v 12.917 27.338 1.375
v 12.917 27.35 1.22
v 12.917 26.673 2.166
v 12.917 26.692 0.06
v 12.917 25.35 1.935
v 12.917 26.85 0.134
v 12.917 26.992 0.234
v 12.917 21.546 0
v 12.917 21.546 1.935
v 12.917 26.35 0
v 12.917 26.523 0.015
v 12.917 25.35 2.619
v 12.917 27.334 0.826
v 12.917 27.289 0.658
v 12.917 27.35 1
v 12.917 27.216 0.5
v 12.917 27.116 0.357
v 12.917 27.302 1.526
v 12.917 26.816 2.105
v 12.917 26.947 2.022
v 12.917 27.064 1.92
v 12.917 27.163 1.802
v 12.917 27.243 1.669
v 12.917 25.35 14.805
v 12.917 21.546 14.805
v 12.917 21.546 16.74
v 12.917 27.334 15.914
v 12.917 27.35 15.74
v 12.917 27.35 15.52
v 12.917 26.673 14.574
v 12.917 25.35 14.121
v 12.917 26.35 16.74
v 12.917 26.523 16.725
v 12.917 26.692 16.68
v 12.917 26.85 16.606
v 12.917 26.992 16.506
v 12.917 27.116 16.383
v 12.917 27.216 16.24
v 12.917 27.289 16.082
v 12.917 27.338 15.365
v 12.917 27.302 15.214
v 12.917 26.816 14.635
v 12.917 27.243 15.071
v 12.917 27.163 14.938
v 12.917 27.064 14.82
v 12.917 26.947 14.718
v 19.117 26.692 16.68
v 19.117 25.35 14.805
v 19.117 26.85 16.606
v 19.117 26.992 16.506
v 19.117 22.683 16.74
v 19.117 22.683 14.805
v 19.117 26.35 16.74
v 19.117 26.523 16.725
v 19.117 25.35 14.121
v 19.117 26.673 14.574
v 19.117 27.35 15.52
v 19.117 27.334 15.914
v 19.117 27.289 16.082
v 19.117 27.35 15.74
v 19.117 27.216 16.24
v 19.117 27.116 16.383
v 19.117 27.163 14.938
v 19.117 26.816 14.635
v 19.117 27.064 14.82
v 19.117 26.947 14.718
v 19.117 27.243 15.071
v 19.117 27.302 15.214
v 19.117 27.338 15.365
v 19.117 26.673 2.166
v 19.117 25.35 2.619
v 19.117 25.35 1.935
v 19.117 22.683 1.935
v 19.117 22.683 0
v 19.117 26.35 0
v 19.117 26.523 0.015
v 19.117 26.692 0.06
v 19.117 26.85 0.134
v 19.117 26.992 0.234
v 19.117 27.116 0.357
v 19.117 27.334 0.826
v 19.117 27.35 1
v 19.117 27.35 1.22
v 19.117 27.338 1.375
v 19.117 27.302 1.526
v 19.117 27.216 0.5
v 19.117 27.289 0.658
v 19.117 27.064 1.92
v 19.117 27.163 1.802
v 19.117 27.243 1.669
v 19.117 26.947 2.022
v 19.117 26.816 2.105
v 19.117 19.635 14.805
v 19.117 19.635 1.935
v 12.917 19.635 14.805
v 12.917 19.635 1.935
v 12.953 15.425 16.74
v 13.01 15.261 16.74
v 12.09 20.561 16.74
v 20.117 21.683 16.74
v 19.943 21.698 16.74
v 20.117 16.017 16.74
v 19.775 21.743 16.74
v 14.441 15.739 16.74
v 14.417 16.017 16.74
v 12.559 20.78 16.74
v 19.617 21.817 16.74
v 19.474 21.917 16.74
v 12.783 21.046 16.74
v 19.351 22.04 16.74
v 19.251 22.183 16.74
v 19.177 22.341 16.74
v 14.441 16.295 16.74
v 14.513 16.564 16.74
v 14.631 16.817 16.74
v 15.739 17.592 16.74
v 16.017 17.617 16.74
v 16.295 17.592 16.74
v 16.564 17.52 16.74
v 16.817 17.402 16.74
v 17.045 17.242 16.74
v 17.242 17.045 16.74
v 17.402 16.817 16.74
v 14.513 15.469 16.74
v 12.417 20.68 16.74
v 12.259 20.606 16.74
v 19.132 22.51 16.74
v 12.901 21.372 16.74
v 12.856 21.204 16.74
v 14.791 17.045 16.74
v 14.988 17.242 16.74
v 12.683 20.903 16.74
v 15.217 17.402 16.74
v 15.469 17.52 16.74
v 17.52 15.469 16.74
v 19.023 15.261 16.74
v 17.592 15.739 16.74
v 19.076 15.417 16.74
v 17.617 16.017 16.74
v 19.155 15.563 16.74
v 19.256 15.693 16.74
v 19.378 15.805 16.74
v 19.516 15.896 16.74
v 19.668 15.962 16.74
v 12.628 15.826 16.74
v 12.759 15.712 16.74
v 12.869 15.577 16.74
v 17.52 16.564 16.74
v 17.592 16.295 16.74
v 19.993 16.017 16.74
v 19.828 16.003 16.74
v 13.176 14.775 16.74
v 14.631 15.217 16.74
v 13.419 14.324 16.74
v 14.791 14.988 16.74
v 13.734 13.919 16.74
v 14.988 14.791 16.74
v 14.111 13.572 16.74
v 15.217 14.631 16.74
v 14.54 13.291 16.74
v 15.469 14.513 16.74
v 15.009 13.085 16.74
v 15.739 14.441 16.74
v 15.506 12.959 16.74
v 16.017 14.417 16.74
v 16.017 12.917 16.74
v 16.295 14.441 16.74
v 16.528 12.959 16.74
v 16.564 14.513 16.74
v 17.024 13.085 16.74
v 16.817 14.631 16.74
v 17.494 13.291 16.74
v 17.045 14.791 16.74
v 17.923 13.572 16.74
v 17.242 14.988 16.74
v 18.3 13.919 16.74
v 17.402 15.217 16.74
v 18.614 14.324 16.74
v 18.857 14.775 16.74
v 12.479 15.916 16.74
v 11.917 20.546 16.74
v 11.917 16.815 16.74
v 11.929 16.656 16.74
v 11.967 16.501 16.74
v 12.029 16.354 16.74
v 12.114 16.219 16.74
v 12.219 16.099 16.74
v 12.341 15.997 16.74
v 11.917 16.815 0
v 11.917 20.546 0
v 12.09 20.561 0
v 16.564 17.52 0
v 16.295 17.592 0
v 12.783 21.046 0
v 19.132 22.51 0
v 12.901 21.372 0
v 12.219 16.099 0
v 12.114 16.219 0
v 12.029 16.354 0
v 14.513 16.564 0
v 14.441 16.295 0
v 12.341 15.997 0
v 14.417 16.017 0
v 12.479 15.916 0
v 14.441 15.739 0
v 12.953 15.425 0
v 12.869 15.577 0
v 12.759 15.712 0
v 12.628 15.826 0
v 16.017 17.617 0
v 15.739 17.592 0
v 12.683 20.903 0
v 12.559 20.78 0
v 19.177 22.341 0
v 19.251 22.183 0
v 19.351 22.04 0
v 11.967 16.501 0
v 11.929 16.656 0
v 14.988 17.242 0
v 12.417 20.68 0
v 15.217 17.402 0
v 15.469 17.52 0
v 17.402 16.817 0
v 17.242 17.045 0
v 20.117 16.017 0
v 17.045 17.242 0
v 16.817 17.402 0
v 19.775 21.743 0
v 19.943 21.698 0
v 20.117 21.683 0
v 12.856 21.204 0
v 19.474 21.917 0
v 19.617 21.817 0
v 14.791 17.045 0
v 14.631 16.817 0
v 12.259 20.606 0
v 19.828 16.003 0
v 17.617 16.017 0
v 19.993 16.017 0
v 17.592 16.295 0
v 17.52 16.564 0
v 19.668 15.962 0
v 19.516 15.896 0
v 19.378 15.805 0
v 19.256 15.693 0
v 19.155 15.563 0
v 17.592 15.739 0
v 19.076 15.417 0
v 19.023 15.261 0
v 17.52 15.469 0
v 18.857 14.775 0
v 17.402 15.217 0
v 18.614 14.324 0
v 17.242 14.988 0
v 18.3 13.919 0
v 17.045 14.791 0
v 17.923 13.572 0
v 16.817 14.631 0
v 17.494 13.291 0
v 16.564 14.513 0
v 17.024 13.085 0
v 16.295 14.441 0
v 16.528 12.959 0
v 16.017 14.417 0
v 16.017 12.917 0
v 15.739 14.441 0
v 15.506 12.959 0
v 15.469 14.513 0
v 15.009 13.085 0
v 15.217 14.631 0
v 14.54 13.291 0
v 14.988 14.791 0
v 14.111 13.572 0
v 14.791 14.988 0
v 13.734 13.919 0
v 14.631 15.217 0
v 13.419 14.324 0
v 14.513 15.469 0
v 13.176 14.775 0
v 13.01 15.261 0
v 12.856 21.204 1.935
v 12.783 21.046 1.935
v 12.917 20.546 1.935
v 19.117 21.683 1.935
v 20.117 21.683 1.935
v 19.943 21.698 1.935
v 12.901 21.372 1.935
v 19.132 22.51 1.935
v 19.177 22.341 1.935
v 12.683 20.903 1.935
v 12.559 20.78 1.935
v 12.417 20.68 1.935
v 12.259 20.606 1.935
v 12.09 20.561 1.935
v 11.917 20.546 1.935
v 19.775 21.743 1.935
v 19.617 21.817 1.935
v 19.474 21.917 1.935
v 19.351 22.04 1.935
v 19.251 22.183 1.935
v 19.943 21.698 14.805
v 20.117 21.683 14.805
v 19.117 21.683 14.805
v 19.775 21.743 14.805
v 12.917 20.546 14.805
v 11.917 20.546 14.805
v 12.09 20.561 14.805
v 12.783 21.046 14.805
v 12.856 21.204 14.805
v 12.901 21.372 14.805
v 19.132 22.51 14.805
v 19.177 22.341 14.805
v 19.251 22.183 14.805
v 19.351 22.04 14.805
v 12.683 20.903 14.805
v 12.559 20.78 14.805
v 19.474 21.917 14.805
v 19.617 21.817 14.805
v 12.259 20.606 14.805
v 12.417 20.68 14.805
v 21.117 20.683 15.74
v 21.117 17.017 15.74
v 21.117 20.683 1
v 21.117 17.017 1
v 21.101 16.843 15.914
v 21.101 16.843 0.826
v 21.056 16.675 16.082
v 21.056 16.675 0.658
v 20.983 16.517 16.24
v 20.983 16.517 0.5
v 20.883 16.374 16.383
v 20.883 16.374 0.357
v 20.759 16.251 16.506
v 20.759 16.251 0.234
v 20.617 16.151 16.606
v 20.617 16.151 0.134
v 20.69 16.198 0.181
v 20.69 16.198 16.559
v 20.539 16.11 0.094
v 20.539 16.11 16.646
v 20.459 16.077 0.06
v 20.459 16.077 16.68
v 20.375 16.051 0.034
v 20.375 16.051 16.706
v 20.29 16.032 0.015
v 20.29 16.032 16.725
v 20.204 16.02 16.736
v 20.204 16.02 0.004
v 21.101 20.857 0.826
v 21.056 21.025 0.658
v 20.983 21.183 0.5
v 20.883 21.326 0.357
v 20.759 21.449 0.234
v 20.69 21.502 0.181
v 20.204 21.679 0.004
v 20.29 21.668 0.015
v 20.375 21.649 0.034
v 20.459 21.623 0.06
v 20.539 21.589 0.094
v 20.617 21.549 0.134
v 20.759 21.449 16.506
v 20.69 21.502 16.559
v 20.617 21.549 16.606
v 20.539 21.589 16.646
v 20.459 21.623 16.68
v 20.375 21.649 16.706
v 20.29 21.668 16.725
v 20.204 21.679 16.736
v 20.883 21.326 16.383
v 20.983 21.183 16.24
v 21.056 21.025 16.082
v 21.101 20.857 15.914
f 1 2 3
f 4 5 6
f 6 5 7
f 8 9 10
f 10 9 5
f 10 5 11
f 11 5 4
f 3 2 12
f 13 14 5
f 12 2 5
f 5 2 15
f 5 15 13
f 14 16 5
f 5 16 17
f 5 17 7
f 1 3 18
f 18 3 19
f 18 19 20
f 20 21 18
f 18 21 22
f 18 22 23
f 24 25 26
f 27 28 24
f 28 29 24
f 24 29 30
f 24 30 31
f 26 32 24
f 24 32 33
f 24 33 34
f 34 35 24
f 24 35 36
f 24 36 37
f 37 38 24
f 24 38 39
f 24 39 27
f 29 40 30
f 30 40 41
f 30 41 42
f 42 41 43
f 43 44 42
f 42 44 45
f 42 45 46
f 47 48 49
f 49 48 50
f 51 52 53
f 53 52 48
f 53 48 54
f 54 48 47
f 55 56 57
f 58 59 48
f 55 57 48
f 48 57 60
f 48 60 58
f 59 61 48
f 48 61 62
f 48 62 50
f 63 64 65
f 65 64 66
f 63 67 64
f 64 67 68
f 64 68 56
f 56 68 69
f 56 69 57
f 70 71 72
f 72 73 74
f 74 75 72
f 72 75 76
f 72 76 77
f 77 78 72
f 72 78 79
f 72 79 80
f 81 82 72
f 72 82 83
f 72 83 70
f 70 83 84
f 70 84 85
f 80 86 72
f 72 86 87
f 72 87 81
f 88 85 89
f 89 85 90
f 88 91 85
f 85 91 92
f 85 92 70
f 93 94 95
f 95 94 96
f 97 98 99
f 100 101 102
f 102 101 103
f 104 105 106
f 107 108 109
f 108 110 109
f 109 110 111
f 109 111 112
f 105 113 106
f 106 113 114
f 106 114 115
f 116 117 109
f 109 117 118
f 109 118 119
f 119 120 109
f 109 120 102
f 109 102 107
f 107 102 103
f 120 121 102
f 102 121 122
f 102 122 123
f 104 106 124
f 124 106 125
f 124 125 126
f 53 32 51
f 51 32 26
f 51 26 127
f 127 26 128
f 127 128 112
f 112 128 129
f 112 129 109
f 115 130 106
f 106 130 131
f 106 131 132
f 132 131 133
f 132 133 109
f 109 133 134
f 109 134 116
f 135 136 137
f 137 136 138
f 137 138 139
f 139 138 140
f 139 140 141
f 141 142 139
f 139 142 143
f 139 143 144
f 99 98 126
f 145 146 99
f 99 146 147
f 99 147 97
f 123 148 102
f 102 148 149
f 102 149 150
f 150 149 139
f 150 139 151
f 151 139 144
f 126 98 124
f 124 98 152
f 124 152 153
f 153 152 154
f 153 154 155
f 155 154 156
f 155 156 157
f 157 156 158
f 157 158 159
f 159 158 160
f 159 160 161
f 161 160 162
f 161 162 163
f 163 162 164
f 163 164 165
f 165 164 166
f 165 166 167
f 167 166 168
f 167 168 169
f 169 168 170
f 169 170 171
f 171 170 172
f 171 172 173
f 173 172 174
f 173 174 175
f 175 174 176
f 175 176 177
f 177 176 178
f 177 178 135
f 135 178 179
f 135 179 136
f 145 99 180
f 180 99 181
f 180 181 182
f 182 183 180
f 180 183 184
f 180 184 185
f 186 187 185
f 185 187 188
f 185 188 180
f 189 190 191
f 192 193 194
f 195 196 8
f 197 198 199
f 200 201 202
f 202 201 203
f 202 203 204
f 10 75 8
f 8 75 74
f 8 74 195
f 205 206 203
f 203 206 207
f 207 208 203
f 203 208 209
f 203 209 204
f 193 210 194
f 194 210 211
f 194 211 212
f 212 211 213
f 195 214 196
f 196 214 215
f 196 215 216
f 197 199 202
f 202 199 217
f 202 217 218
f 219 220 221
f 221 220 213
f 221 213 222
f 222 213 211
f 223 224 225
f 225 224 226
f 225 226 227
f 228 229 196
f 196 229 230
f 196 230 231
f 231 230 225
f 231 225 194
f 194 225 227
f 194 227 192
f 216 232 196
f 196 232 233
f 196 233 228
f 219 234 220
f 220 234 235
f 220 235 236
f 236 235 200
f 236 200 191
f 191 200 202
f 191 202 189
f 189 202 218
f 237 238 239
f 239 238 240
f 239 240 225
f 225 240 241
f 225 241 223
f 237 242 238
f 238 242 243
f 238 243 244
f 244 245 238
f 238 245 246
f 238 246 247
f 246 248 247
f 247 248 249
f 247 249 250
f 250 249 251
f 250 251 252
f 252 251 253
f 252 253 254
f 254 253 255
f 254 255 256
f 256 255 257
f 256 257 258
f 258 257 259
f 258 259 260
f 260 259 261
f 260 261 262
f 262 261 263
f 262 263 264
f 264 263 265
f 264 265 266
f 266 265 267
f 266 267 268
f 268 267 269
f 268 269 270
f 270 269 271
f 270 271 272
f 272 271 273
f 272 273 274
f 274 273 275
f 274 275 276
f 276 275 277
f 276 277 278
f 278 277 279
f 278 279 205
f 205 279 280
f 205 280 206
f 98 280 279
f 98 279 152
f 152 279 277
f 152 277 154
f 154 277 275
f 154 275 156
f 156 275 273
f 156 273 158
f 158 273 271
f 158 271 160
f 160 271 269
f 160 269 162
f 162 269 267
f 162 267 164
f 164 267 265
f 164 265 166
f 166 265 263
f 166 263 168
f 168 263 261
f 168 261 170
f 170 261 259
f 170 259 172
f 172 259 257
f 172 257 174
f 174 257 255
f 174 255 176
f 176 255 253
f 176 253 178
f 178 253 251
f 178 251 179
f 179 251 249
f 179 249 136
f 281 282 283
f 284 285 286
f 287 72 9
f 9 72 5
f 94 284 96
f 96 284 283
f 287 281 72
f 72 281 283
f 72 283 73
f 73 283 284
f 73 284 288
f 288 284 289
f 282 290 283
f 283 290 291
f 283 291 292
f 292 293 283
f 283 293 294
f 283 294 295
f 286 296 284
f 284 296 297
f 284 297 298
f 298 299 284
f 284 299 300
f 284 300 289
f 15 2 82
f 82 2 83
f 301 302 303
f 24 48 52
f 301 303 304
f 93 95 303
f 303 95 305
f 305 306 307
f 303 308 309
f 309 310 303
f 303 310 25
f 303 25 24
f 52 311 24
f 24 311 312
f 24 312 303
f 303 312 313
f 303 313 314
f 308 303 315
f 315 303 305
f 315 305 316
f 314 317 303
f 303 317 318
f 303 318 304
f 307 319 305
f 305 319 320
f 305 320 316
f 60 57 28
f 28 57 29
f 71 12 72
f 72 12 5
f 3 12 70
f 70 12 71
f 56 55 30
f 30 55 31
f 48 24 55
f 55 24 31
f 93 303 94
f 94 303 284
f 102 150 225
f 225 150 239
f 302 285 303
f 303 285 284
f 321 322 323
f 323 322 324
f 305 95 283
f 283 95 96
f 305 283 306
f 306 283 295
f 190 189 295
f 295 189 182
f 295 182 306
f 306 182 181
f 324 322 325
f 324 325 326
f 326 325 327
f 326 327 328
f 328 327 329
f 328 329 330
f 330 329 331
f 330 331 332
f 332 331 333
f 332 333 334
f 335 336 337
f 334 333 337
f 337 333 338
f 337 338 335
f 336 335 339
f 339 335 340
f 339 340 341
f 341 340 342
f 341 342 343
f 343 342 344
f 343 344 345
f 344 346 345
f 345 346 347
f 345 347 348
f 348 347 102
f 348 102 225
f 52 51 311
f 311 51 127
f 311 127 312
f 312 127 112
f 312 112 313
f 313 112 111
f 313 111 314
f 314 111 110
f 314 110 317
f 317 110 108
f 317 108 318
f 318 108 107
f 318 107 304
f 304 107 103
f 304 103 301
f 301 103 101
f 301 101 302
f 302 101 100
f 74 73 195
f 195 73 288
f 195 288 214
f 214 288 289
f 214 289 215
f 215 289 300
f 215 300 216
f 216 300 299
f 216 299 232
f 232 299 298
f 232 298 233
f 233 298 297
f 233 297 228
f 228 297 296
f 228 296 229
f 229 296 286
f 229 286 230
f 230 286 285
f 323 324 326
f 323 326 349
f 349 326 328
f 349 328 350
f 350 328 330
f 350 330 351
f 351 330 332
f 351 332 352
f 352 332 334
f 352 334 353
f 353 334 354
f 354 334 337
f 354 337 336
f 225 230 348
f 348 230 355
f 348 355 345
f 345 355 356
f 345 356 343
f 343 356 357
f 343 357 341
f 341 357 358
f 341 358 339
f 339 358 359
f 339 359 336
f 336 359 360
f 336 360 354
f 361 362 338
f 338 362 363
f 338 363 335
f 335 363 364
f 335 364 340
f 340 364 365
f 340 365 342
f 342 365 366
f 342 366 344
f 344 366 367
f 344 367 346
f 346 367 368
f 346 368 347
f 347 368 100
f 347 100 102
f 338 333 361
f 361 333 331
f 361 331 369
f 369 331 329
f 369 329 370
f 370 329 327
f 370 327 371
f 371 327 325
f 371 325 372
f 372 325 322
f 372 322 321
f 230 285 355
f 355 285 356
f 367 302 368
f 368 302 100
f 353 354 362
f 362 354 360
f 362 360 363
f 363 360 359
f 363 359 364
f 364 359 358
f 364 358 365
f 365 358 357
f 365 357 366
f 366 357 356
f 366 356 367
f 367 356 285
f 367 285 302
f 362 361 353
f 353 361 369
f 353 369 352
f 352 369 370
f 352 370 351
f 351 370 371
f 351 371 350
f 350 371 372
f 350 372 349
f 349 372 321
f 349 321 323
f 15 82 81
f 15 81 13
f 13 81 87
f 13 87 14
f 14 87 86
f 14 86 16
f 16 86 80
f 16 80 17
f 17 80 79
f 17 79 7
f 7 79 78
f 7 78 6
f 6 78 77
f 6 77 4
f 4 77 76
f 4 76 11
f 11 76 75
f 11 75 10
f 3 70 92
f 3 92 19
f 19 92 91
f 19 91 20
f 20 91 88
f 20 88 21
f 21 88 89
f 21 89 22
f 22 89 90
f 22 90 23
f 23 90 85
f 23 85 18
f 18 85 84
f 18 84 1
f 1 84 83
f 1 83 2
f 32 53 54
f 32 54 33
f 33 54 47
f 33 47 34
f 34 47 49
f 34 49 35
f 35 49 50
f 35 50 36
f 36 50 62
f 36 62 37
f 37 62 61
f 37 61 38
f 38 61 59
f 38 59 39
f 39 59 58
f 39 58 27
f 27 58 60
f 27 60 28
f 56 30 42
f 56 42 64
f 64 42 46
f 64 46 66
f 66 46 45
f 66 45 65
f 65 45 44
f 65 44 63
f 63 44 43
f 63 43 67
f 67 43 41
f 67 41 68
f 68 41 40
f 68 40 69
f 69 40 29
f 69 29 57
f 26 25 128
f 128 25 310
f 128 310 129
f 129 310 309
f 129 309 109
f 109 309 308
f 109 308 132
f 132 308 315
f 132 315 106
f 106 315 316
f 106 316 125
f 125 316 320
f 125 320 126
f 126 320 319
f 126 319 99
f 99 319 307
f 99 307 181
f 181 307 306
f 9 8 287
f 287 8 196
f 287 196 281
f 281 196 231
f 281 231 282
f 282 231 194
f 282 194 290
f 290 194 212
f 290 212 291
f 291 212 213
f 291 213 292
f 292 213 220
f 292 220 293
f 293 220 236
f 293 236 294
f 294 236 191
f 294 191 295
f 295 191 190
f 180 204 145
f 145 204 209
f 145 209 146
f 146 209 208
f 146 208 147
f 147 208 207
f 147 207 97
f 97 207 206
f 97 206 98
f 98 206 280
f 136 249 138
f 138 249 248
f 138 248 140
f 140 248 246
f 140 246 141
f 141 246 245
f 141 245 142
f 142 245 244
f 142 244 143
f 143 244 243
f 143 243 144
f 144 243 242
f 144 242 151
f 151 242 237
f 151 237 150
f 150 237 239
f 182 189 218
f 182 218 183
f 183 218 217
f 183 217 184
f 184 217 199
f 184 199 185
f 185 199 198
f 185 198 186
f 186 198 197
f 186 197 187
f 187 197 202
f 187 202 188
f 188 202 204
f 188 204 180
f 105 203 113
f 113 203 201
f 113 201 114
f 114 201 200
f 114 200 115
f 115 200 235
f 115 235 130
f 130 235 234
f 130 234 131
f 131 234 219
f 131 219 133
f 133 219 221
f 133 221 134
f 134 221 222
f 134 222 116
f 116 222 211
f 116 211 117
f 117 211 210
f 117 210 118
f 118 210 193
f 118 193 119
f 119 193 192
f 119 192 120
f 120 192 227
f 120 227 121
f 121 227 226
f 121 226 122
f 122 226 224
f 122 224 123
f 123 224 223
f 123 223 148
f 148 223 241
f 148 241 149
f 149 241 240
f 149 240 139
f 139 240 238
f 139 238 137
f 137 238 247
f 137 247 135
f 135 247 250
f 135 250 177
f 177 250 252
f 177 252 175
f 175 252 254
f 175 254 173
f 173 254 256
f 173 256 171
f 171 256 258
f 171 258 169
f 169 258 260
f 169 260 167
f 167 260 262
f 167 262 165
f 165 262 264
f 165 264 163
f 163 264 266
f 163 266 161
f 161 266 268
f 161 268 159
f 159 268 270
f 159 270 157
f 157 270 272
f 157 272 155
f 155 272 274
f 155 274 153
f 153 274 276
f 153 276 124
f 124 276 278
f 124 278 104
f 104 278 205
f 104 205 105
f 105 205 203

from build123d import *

# Parameters (mm, degrees)
ESBO_O1_R                = 3.1
ESBO_O1_R_2              = 1.55
RESSALTO_EXTRUS_O1_DEPTH = 16.74
BOSS_EXTRUDE1_DEPTH      = 16.74
SKETCH2_W                = 6.2
SKETCH2_H                = 1.935
BOSS_EXTRUDE2_DEPTH      = 7.715
BOSS_EXTRUDE3_DEPTH      = 6.2
SKETCH5_W                = 16.74
SKETCH5_H                = 5.66650546
BOSS_EXTRUDE4_DEPTH      = 2
SKETCH6_W                = 16.74
SKETCH6_H                = 4.529470895
BOSS_EXTRUDE5_DEPTH      = 1
FILLET1_R                = 1
FILLET4_R                = 1
M3_CLEARANCE_HOLE1_D     = 3.2


with BuildPart() as part:
    # Esboço1 → Ressalto-extrusão1 (new body)
    with BuildSketch(Plane.XY):
        with Locations((16.016666667, 16.016666667)):
            Circle(ESBO_O1_R)
        with Locations((16.016666667, 16.016666667)):
            Circle(ESBO_O1_R_2, mode=Mode.SUBTRACT)
    extrude(amount=RESSALTO_EXTRUS_O1_DEPTH)

    # Sketch1 → Boss-Extrude1 (add)
    with BuildSketch(Plane(origin=(0, 0, 0), x_dir=(-1, 0, 0), z_dir=(0, 0, -1))):
        with BuildLine():
            Line((-12.916666667, 16.016666667), (-12.916666667, 19.634677588))
            Line((-12.916666667, 19.634677588), (-19.116666667, 19.634677588))
            Line((-19.116666667, 19.634677588), (-19.116666667, 16.016666667))
            ThreePointArc((-19.116666667, 16.016666667), (-16.016666667, 19.116666667), (-12.916666667, 16.016666667))
        make_face()
    extrude(amount=-BOSS_EXTRUDE1_DEPTH)

    # Sketch2 → Boss-Extrude2 (add)
    with BuildSketch(Plane(origin=(0, 19.634677588, 0), x_dir=(1, 0, 0), z_dir=(0, 1, 0))):
        with Locations((16.016666667, -0.9675)):
            Rectangle(SKETCH2_W, SKETCH2_H)
        with Locations((16.016666667, -15.7725)):
            Rectangle(SKETCH2_W, SKETCH2_H)
    extrude(amount=BOSS_EXTRUDE2_DEPTH)

    # Sketch4 → Boss-Extrude3 (add)
    with BuildSketch(Plane.ZY.offset(-12.916666667)):
        Polygon((1.935, 27.349677588), (1.935, 25.349677588), (2.619300497, 25.349677588), align=None)
        Polygon((14.120699503, 25.349677588), (14.805, 27.349677588), (14.805, 25.349677588), align=None)
    extrude(amount=-BOSS_EXTRUDE3_DEPTH)

    # Sketch5 → Boss-Extrude4 (add)
    with BuildSketch(Plane(origin=(19.116666667, 0, 0), x_dir=(0, 0, -1), z_dir=(1, 0, 0))):
        with Locations((-8.37, 18.849919397)):
            Rectangle(SKETCH5_W, SKETCH5_H)
    extrude(amount=BOSS_EXTRUDE4_DEPTH)

    # Sketch6 → Boss-Extrude5 (add)
    with BuildSketch(Plane.ZY.offset(-12.916666667)):
        with Locations((8.37, 18.281402115)):
            Rectangle(SKETCH6_W, SKETCH6_H)
    extrude(amount=BOSS_EXTRUDE5_DEPTH)

    # Fillet1
    fillet1_edges = [part.edges().sort_by_distance(p)[0] for p in [
        (21.116666667, 21.683172127, 8.37),
        (21.116666667, 18.849919397, 0),
        (21.116666667, 16.016666667, 8.37),
        (21.116666667, 18.849919397, 16.74),
        (16.016666667, 27.349677588, 0),
        (16.016666667, 27.349677588, 1.935),
        (16.016666667, 27.349677588, 16.74),
        (16.016666667, 27.349677588, 14.805),
        (19.116666667, 21.683172127, 15.7725),
        (12.916666667, 20.546137562, 15.7725),
        (12.916666667, 20.546137562, 0.9675),
        (19.116666667, 21.683172127, 0.9675),
        (12.916666667, 16.016666667, 8.37),
        (19.116666667, 16.016666667, 8.37),
    ]]
    fillet(fillet1_edges, radius=FILLET1_R - 0.0001)  # a hair under: the kernel refuses the full size

    # Fillet4
    fillet4_edges = [part.edges().sort_by_distance(p)[0] for p in [
        (11.916666667, 16.016666667, 8.37),
    ]]
    fillet(fillet4_edges, radius=FILLET4_R)

    # M3 Clearance Hole1 (through all)
    with Locations(Plane(origin=(0, 0, 0), x_dir=(-1, 0, 0), z_dir=(0, 0, -1))):
        with Locations((-16.016666667, 16.016666667)):
            Hole(M3_CLEARANCE_HOLE1_D / 2)


solid = part.part
